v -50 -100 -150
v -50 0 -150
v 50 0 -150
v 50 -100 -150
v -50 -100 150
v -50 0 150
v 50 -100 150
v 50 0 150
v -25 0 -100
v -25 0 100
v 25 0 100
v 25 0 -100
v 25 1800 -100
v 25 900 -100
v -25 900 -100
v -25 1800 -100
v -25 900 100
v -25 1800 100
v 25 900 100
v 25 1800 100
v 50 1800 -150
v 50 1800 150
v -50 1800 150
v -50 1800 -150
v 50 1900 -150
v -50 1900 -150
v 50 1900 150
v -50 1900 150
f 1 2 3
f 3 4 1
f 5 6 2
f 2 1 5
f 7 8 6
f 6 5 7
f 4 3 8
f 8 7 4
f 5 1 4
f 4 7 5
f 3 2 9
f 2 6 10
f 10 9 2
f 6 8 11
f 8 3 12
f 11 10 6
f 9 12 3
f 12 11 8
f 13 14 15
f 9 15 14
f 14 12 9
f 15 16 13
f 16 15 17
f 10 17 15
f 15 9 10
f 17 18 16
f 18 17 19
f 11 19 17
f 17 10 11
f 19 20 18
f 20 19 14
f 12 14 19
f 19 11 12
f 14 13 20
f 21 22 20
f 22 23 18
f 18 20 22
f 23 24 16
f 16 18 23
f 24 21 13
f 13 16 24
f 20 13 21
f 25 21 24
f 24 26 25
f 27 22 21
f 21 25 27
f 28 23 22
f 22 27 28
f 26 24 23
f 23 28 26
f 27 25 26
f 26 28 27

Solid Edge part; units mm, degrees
sketch "Sketch1" plane through (0, 0, 0) normal (0, 1, 0) x (-1, 0, 0)
  line L0 (50, -150) -> (50, 150)
  line L1 (50, 150) -> (-50, 150)
  line L2 (-50, 150) -> (-50, -150)
  line L3 (-50, -150) -> (50, -150)
extrude "Protrusion1" add sketch "Sketch1" against normal blind 100
sketch "Sketch2" plane through (0, 0, 0) normal (0, 1, 0) x (1, 0, 0)
  line L0 (-25, 100) -> (-25, -100)
  line L1 (-25, -100) -> (25, -100)
  line L2 (25, -100) -> (25, 100)
  line L3 (25, 100) -> (-25, 100)
extrude "ExtrudedProtrusion_4" add sketch "Sketch2" along normal blind 1800
sketch "Sketch3" plane through (0, 1800, 0) normal (0, 1, 0) x (1, 0, 0)
  line L0 (50, 150) -> (50, -150)
  line L1 (50, -150) -> (-50, -150)
  line L2 (-50, -150) -> (-50, 150)
  line L3 (-50, 150) -> (50, 150)
extrude "ExtrudedProtrusion_5" add sketch "Sketch3" along normal blind 100
properties material "Aluminum, 1060"
